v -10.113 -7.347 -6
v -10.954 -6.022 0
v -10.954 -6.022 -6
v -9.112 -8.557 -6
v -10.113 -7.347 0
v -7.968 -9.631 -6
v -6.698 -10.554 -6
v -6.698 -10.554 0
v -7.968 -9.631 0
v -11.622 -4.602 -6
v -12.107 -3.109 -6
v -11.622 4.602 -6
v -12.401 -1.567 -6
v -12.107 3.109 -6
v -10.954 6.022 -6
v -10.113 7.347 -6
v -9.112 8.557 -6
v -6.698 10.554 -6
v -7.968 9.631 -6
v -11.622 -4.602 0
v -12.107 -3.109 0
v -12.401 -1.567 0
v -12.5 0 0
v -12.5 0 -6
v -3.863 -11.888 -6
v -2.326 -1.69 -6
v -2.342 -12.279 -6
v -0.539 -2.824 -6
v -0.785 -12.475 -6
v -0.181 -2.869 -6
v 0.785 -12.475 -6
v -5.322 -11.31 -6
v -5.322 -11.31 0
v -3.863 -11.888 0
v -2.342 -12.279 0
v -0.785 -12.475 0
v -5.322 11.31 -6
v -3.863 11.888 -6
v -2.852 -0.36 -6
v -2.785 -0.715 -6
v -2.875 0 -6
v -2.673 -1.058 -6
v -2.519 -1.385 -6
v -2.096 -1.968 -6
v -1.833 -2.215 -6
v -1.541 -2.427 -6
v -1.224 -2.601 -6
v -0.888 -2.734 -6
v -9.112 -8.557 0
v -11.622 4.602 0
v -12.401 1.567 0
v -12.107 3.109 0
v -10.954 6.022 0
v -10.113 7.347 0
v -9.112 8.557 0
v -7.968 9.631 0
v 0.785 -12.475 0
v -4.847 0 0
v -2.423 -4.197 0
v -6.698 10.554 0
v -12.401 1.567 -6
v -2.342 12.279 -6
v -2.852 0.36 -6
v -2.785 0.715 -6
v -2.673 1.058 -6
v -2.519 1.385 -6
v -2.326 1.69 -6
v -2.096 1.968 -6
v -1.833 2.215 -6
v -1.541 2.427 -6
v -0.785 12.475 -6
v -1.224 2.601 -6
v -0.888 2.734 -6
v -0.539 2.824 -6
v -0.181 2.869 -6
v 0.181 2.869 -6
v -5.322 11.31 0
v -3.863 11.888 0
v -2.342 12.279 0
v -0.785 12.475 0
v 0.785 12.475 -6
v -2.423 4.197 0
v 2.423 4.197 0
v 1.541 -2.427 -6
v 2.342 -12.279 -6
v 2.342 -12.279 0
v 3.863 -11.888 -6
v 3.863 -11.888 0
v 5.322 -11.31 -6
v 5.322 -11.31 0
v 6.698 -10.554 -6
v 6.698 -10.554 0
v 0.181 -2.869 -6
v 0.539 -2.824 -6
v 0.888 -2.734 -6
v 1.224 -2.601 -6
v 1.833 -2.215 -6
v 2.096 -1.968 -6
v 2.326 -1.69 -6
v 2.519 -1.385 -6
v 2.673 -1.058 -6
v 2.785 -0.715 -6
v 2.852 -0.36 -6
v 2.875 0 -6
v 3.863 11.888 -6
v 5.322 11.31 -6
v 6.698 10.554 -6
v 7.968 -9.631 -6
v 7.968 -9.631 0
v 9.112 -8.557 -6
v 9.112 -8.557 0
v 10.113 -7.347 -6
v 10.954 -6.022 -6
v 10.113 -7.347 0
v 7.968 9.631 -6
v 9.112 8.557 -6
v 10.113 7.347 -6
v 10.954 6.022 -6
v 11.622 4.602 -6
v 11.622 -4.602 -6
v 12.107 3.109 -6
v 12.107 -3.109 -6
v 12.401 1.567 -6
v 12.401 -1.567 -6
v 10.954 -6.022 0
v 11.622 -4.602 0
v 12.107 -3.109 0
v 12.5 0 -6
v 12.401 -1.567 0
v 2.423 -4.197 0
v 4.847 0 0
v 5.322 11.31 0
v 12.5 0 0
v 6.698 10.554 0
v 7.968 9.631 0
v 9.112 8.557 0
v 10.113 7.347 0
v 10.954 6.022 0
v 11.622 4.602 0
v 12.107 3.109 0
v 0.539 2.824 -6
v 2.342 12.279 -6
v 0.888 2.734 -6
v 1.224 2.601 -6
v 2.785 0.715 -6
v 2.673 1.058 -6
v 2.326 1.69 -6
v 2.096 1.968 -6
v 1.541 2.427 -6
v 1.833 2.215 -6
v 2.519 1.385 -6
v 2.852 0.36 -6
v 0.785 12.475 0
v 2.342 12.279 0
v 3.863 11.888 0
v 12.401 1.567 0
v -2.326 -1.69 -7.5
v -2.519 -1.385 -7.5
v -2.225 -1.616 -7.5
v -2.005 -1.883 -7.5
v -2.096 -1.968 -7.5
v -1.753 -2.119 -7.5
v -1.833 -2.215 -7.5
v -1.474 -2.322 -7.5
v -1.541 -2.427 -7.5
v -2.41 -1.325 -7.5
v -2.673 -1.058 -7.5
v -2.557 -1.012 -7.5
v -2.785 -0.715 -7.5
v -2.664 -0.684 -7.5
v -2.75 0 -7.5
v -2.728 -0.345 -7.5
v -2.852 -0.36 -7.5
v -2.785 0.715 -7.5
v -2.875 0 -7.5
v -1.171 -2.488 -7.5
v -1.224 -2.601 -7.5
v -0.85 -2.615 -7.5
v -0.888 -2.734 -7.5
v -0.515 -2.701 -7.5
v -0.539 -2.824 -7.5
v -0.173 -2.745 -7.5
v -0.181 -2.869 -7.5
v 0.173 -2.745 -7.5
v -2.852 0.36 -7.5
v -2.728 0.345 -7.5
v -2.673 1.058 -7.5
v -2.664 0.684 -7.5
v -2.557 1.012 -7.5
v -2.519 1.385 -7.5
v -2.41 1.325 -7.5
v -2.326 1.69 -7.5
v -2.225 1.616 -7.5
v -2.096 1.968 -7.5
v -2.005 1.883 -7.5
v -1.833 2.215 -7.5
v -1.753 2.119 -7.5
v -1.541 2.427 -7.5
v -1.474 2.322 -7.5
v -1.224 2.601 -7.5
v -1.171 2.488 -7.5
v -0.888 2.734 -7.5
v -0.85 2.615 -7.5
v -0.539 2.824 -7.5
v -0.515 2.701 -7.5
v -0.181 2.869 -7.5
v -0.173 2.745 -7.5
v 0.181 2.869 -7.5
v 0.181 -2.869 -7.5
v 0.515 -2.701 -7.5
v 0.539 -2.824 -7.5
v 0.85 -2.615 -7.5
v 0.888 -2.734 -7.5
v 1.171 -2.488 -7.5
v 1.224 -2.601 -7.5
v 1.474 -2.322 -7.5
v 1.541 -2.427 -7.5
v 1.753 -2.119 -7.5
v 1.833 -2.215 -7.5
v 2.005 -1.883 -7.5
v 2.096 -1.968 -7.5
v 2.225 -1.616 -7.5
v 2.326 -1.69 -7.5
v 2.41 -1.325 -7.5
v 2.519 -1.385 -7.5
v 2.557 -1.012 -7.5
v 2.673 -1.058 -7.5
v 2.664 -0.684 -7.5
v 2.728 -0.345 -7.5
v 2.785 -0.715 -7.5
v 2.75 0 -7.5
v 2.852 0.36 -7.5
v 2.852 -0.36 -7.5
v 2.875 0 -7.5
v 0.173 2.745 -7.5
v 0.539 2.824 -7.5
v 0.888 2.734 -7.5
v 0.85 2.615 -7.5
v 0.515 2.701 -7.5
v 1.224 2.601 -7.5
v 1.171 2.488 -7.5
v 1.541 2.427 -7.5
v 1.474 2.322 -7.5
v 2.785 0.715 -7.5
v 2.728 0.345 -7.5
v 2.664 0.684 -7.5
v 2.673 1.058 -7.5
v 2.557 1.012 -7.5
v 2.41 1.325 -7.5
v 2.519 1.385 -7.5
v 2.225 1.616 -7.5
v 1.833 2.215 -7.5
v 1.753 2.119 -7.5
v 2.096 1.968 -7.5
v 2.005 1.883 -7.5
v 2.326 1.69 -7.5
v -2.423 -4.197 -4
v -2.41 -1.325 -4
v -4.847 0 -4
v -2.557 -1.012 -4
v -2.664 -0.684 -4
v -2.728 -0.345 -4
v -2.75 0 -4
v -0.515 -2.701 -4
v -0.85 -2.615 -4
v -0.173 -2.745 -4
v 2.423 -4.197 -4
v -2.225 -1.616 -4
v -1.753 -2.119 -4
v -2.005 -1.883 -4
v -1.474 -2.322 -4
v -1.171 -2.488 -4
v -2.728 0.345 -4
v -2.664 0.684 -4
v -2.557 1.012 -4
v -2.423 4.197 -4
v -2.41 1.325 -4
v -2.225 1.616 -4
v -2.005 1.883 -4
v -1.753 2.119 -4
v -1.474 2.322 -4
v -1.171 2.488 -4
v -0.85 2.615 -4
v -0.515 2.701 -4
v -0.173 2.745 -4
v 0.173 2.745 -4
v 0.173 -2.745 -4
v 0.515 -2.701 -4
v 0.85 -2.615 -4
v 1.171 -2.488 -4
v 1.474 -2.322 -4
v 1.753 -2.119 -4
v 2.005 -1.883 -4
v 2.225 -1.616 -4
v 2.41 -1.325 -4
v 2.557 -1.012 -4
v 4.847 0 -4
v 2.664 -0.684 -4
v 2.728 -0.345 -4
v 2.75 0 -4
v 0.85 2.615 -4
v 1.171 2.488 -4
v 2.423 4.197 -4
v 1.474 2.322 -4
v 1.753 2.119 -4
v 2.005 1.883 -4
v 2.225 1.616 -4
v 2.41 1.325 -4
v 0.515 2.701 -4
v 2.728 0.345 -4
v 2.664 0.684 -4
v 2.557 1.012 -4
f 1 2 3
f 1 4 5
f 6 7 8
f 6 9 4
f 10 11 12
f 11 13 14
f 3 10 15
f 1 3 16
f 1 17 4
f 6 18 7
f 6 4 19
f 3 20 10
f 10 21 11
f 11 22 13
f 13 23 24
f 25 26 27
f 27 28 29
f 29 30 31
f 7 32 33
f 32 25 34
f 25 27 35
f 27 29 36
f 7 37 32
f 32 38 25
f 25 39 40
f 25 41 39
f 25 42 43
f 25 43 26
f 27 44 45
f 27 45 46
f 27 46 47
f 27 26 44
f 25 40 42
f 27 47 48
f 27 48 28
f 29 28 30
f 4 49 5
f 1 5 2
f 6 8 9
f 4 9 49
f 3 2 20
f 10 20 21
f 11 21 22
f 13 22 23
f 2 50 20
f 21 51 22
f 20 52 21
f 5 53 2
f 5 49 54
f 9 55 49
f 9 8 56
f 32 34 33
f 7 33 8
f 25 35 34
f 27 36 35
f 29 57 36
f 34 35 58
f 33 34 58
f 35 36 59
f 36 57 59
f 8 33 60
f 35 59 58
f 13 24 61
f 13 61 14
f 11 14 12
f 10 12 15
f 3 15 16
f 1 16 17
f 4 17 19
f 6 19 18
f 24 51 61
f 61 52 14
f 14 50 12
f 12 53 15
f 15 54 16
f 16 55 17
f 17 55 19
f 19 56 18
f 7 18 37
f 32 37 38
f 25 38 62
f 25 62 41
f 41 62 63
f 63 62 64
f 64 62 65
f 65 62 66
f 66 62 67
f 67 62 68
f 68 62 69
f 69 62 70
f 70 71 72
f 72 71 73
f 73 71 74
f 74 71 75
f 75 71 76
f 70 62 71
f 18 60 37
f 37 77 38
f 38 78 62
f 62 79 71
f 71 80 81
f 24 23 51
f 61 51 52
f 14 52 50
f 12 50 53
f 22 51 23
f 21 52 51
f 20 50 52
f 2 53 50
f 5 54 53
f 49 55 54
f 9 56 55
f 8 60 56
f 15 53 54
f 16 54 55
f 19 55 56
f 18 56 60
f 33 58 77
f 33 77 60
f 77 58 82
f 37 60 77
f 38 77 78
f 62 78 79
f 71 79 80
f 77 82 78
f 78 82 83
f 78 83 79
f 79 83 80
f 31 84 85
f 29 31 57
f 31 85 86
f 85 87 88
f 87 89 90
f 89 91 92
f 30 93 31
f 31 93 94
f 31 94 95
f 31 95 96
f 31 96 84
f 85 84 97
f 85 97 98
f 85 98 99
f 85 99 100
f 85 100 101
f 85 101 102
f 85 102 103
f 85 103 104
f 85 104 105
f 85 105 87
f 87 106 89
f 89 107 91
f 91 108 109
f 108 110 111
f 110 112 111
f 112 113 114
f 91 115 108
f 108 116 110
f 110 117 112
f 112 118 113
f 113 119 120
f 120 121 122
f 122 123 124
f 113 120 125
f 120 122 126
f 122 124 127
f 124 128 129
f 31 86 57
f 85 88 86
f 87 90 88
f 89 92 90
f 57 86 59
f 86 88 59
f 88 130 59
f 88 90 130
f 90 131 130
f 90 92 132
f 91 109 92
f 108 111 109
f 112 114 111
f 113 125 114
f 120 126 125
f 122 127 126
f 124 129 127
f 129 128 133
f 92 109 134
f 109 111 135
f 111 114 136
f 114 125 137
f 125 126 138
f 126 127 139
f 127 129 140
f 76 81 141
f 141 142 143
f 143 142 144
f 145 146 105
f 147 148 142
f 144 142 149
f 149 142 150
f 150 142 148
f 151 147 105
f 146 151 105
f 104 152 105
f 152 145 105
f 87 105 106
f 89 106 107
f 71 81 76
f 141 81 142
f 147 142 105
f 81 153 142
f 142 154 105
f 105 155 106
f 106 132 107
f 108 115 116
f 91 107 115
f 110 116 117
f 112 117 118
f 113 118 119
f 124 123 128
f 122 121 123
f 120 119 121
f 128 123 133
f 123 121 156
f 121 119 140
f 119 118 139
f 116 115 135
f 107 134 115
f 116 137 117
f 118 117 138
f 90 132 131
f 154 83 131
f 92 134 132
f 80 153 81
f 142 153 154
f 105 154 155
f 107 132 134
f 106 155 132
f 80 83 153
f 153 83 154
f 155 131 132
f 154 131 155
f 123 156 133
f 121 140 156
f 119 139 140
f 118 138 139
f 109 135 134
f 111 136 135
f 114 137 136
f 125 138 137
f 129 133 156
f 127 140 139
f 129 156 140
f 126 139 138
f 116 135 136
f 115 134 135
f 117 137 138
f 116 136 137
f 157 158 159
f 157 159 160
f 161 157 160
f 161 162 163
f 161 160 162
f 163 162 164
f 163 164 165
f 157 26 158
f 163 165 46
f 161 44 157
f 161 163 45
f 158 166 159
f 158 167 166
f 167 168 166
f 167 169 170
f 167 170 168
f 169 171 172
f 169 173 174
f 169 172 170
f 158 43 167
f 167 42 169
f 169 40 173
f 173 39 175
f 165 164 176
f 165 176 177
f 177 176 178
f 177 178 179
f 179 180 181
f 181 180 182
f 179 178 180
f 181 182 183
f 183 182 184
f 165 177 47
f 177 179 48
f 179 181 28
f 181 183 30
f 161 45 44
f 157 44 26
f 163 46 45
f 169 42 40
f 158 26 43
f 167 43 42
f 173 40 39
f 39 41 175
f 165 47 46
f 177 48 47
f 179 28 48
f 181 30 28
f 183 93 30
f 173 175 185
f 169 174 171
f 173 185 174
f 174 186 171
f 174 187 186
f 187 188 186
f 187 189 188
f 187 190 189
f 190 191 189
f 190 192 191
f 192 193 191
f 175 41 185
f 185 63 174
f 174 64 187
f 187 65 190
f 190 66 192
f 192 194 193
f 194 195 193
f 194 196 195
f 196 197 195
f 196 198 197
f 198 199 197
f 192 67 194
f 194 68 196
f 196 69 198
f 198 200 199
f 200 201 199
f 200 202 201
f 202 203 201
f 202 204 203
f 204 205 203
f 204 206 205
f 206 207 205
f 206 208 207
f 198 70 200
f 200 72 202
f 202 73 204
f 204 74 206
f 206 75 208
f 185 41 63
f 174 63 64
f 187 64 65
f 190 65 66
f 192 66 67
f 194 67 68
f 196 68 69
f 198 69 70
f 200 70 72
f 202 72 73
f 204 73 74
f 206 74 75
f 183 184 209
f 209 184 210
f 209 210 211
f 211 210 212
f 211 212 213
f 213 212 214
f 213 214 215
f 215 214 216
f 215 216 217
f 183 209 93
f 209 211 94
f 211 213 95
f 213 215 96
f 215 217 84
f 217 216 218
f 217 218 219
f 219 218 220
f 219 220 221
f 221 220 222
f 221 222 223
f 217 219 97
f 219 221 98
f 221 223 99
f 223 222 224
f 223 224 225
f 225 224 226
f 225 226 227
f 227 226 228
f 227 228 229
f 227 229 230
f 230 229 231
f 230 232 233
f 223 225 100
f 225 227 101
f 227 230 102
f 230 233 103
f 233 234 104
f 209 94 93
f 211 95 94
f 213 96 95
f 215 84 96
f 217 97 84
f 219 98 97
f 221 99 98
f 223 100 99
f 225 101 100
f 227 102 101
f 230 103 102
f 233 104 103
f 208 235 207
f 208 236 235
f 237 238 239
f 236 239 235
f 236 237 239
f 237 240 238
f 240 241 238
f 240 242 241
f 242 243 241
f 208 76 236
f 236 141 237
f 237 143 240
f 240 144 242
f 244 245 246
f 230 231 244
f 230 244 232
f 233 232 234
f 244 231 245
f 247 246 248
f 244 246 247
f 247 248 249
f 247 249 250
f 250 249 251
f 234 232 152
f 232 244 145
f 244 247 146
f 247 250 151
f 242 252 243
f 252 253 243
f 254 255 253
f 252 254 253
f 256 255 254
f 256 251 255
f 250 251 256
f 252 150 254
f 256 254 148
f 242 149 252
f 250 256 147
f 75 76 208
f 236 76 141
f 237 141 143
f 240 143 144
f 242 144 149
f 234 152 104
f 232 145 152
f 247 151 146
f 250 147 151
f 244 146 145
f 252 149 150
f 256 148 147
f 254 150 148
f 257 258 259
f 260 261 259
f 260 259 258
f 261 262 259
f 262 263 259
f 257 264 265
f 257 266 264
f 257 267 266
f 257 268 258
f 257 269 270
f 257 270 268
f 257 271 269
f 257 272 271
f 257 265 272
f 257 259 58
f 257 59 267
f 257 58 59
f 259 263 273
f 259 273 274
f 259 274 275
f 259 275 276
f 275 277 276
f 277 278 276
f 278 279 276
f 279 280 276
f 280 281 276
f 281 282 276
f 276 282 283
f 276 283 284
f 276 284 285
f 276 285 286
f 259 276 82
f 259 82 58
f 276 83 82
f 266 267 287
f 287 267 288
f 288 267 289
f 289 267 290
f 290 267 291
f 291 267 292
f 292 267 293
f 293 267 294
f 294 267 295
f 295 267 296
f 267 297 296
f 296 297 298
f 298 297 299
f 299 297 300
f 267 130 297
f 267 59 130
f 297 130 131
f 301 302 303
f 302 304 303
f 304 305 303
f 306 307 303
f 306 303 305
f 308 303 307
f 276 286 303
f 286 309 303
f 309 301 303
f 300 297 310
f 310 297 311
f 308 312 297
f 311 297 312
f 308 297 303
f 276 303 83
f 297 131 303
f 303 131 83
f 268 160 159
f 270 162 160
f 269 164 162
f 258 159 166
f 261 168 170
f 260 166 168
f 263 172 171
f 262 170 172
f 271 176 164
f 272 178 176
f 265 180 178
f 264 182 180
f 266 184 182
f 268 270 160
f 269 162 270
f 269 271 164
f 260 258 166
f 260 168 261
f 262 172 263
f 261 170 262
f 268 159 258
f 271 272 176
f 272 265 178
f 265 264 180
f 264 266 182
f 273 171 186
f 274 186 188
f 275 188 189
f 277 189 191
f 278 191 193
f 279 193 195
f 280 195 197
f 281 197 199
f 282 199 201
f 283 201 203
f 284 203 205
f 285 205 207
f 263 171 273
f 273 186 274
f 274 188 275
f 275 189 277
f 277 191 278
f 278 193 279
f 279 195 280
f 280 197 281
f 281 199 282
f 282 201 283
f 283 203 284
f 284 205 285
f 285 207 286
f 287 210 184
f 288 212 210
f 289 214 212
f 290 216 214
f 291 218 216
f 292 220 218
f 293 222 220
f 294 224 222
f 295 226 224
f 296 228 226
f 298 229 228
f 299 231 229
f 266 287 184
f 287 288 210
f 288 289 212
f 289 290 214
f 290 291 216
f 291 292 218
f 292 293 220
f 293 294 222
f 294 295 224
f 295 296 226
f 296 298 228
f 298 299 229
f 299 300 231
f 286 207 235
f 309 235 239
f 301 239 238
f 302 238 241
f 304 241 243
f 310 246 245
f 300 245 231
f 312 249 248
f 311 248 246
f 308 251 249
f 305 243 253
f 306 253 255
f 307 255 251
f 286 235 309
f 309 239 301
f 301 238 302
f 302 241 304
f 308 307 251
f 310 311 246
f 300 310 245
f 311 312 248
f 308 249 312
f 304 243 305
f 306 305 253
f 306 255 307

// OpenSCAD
$fn = 50;

difference() {
	union() {
		translate(v = [0, 0, -6.0]) {
			cylinder(h = 6.0, r = 12.5);
		}
		#translate(v = [0, 0, -7.5]) {
			cylinder(h = 7.5, r = 2.875);
		}
	}
	union() {
		translate(v = [0, 0, 0]) {
			rotate(a = [0, 0, 0]) {
				difference() {
					union() {
						translate(v = [0, 0, -4]) {
							linear_extrude(height = 4) {
								polygon(points = [[4.8468, 0.0], [2.4234000000000004, 4.197451927062417], [-2.423399999999999, 4.197451927062417], [-4.8468, 5.935618106107392e-16], [-2.423400000000002, -4.197451927062416], [2.423399999999997, -4.197451927062419]]);
							}
						}
					}
					union();
				}
			}
		}
		#translate(v = [0, 0, -100.0]) {
			cylinder(h = 200, r = 2.75);
		}
	}
}
